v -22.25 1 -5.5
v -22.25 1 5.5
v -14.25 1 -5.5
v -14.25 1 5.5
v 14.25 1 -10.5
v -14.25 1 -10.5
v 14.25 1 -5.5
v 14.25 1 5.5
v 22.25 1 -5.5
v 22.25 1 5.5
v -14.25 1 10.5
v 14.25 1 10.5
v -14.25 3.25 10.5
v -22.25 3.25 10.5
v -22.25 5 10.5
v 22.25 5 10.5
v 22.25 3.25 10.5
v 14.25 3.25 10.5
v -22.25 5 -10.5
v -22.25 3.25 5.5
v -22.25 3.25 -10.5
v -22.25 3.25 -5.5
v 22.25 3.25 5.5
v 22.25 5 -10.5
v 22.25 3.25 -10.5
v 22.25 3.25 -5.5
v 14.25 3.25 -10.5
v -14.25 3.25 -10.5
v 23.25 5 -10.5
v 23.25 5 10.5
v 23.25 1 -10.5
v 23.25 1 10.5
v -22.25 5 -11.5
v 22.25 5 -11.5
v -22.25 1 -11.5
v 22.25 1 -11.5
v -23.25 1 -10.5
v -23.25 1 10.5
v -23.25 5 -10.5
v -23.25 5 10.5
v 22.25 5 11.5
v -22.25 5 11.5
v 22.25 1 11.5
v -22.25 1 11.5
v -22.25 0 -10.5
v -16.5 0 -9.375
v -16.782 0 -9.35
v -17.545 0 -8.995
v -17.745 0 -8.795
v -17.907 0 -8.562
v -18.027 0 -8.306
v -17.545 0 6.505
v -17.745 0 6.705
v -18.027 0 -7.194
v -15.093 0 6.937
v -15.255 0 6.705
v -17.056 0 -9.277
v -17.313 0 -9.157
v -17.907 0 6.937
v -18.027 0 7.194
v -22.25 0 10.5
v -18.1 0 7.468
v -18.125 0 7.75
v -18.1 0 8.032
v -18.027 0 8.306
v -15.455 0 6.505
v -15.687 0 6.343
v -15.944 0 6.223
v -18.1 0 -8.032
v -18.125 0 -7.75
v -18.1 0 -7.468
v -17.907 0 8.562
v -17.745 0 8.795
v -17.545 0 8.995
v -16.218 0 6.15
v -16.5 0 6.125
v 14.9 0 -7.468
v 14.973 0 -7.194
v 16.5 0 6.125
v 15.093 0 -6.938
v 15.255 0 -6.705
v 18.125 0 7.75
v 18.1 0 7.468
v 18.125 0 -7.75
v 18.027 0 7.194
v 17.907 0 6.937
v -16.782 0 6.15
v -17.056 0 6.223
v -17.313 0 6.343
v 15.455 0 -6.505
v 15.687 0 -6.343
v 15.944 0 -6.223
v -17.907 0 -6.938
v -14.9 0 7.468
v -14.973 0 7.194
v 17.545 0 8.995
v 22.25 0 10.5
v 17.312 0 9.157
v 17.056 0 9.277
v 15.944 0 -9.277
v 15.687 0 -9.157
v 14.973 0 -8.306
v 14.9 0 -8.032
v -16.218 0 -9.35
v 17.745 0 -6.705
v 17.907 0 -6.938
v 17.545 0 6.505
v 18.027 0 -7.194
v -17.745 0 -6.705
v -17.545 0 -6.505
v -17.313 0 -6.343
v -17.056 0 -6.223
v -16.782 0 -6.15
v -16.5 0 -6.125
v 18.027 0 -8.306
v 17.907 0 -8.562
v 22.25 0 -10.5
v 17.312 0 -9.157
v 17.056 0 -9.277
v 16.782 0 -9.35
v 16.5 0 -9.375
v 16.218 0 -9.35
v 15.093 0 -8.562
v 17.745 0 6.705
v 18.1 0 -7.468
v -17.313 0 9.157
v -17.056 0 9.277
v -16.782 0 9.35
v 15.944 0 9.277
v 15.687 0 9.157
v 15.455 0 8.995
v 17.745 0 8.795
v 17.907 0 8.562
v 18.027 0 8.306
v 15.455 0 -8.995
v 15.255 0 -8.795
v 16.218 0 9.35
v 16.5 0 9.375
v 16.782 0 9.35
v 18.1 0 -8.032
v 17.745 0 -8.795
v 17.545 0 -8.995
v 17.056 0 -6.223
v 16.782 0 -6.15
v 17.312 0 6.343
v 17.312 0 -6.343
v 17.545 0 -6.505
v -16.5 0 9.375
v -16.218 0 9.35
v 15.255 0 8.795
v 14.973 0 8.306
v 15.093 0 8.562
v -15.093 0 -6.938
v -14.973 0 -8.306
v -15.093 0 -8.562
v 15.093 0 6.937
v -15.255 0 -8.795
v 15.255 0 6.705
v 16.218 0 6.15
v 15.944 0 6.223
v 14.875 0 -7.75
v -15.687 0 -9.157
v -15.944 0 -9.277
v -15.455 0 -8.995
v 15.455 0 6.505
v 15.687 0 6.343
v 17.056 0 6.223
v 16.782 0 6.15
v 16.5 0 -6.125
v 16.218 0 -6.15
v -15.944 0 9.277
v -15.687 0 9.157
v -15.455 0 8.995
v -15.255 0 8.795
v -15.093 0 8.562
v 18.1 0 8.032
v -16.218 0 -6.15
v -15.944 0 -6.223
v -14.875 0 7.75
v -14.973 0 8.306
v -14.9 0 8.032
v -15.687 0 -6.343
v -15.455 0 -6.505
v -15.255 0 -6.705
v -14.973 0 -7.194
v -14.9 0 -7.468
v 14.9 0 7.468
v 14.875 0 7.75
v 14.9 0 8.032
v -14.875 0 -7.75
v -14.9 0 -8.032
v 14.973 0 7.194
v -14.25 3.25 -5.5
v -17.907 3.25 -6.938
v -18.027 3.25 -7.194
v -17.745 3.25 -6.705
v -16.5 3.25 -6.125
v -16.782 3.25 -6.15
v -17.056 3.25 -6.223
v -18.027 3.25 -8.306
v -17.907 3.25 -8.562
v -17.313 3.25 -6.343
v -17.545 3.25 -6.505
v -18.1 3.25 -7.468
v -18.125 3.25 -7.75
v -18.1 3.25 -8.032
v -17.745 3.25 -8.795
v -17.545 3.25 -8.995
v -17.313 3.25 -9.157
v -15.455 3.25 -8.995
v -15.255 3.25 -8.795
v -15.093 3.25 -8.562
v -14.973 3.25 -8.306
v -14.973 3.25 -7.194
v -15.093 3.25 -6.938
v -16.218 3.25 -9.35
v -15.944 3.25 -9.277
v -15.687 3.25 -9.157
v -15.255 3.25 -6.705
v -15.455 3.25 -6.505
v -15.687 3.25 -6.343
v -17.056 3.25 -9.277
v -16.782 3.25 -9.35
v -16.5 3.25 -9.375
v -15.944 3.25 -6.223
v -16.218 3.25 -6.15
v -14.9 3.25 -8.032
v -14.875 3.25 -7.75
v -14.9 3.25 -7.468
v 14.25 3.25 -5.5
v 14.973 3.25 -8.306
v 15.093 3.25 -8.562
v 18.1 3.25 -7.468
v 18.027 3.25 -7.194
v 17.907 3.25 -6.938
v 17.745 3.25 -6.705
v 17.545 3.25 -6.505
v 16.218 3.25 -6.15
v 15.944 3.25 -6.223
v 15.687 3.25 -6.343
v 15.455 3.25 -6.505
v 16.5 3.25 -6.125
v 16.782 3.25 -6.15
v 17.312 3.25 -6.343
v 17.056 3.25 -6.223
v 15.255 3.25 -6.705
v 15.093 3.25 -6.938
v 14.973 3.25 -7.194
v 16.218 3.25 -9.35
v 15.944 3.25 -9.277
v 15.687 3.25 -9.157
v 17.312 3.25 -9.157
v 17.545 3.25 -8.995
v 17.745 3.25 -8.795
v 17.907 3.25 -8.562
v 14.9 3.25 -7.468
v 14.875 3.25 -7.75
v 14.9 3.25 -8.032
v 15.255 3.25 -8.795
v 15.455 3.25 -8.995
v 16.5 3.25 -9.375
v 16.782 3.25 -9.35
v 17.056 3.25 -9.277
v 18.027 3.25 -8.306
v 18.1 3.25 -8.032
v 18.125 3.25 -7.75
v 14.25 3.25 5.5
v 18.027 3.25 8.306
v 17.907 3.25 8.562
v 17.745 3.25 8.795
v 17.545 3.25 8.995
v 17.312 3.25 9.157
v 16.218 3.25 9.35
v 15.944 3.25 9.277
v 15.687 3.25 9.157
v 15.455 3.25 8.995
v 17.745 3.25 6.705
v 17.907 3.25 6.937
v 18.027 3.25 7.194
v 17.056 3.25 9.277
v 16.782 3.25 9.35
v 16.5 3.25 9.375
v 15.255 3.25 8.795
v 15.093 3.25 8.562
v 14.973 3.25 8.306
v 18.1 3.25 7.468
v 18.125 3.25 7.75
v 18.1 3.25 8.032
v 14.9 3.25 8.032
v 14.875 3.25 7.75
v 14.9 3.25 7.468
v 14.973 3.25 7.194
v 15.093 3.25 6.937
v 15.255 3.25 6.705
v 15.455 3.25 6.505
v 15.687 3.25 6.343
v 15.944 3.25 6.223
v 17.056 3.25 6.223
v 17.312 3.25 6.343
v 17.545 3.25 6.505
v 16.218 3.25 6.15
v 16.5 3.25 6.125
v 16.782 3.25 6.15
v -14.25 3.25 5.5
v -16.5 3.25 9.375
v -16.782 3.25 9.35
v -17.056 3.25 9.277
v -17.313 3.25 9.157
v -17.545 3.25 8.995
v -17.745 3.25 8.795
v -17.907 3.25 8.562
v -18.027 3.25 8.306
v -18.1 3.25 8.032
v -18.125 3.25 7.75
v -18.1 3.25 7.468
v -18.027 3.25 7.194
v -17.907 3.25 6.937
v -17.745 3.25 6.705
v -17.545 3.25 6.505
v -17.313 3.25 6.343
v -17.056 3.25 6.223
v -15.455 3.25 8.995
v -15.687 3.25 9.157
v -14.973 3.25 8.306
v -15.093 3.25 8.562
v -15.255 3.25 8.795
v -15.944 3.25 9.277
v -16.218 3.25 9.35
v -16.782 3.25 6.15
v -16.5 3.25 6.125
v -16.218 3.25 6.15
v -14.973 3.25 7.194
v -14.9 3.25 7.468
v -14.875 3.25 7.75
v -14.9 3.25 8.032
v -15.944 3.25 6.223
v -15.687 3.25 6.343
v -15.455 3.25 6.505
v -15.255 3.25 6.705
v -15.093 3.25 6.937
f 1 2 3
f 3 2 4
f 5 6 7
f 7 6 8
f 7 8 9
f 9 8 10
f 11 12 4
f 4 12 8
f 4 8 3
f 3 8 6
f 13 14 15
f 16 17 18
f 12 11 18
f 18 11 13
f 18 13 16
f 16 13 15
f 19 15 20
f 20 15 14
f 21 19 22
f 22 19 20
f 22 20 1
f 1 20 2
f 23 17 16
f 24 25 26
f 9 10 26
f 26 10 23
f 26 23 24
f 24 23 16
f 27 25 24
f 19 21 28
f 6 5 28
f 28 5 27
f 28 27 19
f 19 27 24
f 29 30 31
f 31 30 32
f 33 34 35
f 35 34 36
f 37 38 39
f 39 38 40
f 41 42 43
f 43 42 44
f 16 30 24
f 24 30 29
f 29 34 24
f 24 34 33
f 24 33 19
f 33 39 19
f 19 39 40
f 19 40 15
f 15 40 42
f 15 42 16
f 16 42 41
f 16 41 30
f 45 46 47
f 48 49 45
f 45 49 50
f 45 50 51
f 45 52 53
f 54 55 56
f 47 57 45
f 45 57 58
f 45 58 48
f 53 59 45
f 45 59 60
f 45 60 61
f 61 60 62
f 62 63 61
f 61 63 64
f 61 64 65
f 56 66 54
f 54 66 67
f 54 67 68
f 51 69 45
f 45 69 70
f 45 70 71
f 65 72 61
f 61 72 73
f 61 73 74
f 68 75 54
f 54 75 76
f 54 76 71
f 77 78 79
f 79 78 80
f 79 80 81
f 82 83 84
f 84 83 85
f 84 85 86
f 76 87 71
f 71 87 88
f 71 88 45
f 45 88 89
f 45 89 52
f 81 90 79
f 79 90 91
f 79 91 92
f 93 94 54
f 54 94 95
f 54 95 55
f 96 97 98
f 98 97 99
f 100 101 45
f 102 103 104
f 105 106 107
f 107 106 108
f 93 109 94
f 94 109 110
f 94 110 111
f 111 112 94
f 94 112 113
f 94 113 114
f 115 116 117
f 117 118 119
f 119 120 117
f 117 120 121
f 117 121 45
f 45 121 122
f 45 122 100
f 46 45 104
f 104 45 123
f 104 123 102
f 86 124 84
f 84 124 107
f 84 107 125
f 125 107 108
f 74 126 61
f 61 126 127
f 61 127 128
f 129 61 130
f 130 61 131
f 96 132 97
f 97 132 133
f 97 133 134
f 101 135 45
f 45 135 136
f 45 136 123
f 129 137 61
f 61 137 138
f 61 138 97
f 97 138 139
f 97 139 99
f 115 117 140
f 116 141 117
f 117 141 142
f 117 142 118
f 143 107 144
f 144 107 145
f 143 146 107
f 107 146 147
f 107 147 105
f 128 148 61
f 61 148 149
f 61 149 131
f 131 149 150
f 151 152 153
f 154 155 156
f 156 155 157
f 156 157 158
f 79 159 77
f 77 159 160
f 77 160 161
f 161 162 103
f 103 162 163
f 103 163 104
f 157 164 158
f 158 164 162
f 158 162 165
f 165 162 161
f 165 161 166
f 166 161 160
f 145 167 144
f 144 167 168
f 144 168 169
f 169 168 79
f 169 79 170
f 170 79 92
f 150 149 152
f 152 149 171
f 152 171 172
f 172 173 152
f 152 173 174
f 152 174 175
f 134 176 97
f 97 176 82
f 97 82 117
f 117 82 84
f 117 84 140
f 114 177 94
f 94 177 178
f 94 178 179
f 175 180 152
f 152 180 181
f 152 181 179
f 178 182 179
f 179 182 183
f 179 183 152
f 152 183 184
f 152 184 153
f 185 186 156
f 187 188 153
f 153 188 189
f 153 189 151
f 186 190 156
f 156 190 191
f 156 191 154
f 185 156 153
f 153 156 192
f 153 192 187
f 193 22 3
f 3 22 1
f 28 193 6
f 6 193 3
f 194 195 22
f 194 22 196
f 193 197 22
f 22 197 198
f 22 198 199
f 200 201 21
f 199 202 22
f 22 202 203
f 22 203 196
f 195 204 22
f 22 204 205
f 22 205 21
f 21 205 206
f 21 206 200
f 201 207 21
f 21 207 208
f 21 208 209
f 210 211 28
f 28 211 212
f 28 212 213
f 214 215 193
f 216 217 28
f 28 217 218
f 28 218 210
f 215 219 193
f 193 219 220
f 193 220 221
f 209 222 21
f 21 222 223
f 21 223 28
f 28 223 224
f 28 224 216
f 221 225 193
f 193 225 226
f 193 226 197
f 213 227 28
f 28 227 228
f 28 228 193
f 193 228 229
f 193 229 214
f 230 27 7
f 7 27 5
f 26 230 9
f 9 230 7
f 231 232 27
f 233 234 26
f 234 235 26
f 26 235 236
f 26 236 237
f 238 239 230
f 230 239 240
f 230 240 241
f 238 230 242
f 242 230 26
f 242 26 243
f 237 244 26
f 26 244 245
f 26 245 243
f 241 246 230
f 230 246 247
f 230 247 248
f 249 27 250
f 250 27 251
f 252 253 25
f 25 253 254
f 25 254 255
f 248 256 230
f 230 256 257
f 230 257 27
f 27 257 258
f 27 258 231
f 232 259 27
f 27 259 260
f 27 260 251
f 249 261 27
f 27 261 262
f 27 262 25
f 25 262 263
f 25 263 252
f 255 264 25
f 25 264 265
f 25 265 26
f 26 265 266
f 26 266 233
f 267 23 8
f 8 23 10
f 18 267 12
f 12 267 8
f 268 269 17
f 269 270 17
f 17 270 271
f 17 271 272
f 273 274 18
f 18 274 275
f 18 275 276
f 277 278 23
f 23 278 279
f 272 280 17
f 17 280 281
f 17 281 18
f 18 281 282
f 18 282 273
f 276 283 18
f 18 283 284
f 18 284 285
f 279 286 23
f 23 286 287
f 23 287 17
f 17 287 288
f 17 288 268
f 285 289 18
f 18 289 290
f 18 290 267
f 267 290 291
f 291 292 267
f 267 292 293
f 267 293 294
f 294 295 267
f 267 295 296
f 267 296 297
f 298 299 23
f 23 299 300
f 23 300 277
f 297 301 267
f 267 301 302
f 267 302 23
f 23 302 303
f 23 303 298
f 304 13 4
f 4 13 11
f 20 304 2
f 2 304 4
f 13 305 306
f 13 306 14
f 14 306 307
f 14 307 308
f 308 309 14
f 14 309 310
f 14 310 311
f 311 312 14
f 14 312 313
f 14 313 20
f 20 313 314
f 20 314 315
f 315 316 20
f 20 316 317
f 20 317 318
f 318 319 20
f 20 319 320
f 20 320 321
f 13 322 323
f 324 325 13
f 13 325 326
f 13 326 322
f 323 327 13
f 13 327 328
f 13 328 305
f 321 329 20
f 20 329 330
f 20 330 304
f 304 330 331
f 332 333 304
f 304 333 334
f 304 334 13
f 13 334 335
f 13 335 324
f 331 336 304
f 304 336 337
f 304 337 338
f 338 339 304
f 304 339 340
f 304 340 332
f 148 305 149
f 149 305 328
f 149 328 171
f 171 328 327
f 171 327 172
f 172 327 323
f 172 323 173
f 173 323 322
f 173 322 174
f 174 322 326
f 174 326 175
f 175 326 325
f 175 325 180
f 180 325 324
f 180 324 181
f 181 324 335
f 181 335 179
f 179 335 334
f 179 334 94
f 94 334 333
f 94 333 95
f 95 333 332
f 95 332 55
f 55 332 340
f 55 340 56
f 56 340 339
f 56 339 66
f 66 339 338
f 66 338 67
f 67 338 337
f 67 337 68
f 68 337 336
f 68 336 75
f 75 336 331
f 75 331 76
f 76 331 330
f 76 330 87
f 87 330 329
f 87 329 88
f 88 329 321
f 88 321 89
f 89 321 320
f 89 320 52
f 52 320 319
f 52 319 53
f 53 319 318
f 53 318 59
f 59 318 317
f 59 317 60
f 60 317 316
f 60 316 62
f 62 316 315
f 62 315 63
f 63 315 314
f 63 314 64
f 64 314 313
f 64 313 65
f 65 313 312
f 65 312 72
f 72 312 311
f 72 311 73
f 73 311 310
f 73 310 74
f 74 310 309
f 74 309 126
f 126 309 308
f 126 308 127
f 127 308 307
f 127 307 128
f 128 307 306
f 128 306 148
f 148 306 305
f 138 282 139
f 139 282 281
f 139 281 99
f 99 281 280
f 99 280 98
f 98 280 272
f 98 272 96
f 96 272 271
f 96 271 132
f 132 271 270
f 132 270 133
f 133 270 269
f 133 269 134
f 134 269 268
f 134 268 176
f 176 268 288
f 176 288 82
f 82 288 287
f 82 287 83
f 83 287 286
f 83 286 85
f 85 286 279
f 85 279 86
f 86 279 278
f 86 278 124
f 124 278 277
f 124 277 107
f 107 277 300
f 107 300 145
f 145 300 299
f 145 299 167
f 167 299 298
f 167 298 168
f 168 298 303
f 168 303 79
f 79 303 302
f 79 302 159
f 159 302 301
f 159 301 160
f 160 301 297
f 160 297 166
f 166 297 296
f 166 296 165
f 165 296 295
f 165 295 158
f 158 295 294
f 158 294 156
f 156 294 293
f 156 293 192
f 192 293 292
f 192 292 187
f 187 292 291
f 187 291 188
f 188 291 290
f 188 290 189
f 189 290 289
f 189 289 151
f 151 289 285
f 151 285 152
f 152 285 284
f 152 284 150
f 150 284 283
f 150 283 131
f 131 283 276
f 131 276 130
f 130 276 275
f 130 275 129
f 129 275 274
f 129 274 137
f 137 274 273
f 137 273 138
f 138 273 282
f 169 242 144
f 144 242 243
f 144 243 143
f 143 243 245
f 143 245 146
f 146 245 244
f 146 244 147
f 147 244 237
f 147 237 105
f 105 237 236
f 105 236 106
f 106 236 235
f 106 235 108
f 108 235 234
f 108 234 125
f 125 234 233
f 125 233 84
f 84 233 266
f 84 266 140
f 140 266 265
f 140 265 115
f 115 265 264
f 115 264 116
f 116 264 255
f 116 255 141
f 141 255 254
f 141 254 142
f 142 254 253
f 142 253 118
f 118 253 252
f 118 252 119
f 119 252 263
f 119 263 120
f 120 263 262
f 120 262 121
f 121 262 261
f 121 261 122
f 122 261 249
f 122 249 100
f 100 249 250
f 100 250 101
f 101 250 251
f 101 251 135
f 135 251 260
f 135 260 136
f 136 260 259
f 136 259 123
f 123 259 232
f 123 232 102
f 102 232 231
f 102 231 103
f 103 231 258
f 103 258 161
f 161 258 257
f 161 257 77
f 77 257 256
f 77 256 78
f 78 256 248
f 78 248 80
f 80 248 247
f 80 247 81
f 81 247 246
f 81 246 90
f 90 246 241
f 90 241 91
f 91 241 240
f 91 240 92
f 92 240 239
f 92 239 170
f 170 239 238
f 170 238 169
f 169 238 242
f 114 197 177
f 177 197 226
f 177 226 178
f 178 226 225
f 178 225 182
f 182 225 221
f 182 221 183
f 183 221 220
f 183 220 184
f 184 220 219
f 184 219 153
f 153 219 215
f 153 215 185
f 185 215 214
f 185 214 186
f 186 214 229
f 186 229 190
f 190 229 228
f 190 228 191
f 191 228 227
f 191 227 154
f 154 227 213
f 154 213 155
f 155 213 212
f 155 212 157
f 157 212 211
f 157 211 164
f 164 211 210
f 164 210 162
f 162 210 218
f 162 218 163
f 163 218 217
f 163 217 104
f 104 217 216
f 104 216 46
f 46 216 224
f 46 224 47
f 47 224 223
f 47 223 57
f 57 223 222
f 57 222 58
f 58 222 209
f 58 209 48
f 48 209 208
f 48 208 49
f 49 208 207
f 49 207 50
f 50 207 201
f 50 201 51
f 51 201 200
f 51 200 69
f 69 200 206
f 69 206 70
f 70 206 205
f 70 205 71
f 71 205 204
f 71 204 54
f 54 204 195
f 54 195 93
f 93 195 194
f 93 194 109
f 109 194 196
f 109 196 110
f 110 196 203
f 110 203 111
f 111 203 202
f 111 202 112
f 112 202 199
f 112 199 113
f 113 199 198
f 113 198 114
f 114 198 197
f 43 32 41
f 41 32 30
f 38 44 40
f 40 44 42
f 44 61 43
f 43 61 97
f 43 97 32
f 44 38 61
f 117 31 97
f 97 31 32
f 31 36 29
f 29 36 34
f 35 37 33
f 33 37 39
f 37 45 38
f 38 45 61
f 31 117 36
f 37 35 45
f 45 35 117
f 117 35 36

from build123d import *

# Parameters (mm, degrees)
SKETCH1_W           = 46.5
SKETCH1_H           = 23
BOSS_EXTRUDE1_DEPTH = 5
SKETCH2_W           = 44.5
SKETCH2_H           = 21
CUT_EXTRUDE1_DEPTH  = 4
SKETCH3_W           = 8
SKETCH3_H           = 5
BOSS_EXTRUDE2_DEPTH = 2.25
SKETCH4_R           = 1.625
CUT_EXTRUDE2_DEPTH  = 4.25
CHAMFER1_SIZE       = 1


with BuildPart() as part:
    # Sketch1 → Boss-Extrude1 (new body)
    with BuildSketch(Plane(origin=(0, 0, 0), x_dir=(1, 0, 0), z_dir=(0, 1, 0))):
        Rectangle(SKETCH1_W, SKETCH1_H)
    extrude(amount=BOSS_EXTRUDE1_DEPTH)

    # Sketch2 → Cut-Extrude1 (cut)
    with BuildSketch(Plane(origin=(0, 5, 0), x_dir=(1, 0, 0), z_dir=(0, 1, 0))):
        Rectangle(SKETCH2_W, SKETCH2_H)
    extrude(amount=-CUT_EXTRUDE1_DEPTH, mode=Mode.SUBTRACT)

    # Sketch3 → Boss-Extrude2 (add)
    with BuildSketch(Plane(origin=(0, 1, 0), x_dir=(1, 0, 0), z_dir=(0, 1, 0))):
        with Locations((-18.25, 8)):
            Rectangle(SKETCH3_W, SKETCH3_H)
        with Locations((18.25, 8)):
            Rectangle(SKETCH3_W, SKETCH3_H)
        with Locations((18.25, -8)):
            Rectangle(SKETCH3_W, SKETCH3_H)
        with Locations((-18.25, -8)):
            Rectangle(SKETCH3_W, SKETCH3_H)
    extrude(amount=BOSS_EXTRUDE2_DEPTH)

    # Sketch4 → Cut-Extrude2 (cut, through all)
    with BuildSketch(Plane(origin=(0, 3.25, 0), x_dir=(1, 0, 0), z_dir=(0, 1, 0))):
        with Locations((-16.5, 7.75)):
            Circle(SKETCH4_R)
        with Locations((16.5, 7.75)):
            Circle(SKETCH4_R)
        with Locations((16.5, -7.75)):
            Circle(SKETCH4_R)
        with Locations((-16.5, -7.75)):
            Circle(SKETCH4_R)
    extrude(amount=-CUT_EXTRUDE2_DEPTH, mode=Mode.SUBTRACT)

    # Chamfer1
    chamfer1_edges = [part.edges().sort_by_distance(p)[0] for p in [
        (0, 0, 11.5),
        (-23.25, 0, 0),
        (0, 0, -11.5),
        (23.25, 0, 0),
        (23.25, 2.5, 11.5),
        (-23.25, 2.5, 11.5),
        (-23.25, 2.5, -11.5),
        (23.25, 2.5, -11.5),
    ]]
    chamfer(chamfer1_edges, length=CHAMFER1_SIZE)


solid = part.part
